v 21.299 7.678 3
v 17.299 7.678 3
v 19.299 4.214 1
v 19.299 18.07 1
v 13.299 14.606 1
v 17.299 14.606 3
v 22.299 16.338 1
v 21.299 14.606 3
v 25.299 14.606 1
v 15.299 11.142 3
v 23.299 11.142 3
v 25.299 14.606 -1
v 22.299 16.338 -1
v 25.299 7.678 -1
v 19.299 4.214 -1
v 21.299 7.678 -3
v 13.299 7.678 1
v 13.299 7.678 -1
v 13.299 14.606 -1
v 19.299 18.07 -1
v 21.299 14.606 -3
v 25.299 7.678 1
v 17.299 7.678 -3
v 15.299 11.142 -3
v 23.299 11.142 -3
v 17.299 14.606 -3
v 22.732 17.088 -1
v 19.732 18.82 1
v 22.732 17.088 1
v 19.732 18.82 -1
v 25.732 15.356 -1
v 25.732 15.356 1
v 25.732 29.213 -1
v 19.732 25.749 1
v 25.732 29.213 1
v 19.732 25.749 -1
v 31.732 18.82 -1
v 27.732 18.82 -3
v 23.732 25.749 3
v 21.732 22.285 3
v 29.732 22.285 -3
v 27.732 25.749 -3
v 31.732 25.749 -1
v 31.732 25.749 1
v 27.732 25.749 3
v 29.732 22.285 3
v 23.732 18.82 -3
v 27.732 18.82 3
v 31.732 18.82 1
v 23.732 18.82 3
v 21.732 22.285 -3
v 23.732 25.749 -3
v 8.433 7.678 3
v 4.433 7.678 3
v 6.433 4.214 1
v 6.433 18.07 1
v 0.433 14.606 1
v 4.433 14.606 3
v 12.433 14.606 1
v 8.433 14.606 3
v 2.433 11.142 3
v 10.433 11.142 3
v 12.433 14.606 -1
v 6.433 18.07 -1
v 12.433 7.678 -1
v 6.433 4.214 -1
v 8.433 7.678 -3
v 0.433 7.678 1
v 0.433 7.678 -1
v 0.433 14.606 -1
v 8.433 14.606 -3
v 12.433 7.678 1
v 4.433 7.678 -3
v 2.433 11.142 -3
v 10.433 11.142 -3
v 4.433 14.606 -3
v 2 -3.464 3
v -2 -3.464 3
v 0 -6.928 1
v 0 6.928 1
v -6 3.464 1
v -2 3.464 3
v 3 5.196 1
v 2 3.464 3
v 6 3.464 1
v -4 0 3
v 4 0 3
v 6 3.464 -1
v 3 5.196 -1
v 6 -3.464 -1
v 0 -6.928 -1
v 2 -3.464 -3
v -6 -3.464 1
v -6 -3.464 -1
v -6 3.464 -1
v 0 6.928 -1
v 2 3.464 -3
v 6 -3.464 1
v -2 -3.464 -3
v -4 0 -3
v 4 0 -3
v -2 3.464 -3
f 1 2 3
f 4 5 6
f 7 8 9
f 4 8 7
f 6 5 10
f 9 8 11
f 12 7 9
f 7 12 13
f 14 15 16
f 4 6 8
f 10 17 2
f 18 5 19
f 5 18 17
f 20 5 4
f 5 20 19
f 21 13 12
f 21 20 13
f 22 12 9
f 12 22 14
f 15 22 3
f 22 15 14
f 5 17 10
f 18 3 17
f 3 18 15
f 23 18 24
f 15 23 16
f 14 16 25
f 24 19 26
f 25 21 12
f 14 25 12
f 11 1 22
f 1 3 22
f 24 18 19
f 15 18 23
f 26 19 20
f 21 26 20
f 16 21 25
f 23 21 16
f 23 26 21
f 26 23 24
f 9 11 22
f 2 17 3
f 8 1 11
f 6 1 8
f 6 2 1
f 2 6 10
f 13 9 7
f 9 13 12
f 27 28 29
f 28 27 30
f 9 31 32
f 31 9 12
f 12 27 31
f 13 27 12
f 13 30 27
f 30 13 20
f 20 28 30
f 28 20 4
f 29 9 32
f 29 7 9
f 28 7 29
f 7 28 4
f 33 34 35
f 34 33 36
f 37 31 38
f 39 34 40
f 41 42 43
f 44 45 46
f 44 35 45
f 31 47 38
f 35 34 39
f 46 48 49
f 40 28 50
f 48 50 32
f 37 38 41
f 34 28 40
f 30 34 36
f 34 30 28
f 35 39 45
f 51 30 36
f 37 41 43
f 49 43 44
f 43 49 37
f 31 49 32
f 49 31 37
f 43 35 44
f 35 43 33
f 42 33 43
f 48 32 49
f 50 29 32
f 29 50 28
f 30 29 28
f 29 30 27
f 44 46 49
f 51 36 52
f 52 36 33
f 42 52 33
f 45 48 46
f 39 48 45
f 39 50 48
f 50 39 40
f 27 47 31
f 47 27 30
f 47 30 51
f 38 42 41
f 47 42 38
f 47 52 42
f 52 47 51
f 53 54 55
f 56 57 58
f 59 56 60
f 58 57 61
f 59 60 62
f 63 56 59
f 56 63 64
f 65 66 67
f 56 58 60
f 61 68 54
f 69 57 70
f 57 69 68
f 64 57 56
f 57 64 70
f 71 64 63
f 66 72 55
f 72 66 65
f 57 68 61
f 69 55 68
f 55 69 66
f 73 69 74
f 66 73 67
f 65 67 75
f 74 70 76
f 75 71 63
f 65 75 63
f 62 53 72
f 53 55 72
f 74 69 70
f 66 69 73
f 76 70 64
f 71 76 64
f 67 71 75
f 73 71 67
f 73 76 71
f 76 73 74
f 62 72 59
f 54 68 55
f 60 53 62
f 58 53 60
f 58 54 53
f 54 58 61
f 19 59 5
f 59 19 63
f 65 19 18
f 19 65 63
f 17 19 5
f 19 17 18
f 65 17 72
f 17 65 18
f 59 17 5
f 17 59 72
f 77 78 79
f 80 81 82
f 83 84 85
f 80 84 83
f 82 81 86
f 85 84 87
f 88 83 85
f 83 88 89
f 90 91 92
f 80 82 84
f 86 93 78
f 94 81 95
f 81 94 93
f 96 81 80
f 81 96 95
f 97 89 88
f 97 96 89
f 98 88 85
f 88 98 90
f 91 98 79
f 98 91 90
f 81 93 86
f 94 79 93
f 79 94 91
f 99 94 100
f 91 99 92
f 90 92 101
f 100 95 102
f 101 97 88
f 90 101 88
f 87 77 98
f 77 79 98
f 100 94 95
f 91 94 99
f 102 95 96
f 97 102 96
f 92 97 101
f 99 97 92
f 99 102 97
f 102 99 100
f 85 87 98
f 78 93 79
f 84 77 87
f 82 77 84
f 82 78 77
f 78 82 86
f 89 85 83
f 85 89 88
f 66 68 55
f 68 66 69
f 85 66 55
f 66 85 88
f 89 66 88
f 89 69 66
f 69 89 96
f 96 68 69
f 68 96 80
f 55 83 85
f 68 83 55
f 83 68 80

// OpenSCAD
// file: gem-common.scad
angles = [for(i = [0:5]) i * (360 / 6)];

inner_poly_radius=8 * cos(60);
outer_poly_radius=8 * cos(30);
outer_poly_z=1;
inner_poly_z=3;


gap_between_gems = cos(30);
distance_to_corner = cos(30) * outer_poly_radius * 2 + gap_between_gems;


module edge_connector(angle = 0) {
    function make_point_2d(r, angle, height) = [r * sin(angle), height];
    
    points = [
        make_point_2d(outer_poly_radius, 30, outer_poly_z),
        make_point_2d(outer_poly_radius, -30, outer_poly_z),
        make_point_2d(outer_poly_radius, -30, -outer_poly_z),
        make_point_2d(outer_poly_radius, 30, -outer_poly_z),
    ];
    
    rotate([0,0,angle]) {
        translate([(distance_to_corner - gap_between_gems) / 2,0,0]){
            rotate([90, 0, 90]) {
                linear_extrude(gap_between_gems) {
                    polygon(points);
                }
            }
        }
    }
}

module move(distance, angle) {
    translate([distance * cos(angle), distance * sin(angle), 0]) {
        children();
    }
}


module corner_connector(angle=0) {
    r = 0.5;
    rotate_angle = angle + 30;
    move(outer_poly_radius + r, rotate_angle) {
        translate([0,0, -outer_poly_z]) {
            rotate([0,0,-rotate_angle]) {
                cylinder($fn=3, r=r, h=outer_poly_z * 2);
            }
        }
    }
}

module gem() {
    function make_point(r, angle, height) = [r * cos(angle), r * sin(angle), height];
    
    top_poly = [for(th = angles) make_point(inner_poly_radius, th, inner_poly_z)];
    top_outer_poly = [for(th = angles) make_point(outer_poly_radius, th + 30, outer_poly_z)];
    bottom_outer_poly = [for(th = angles) make_point(outer_poly_radius, th + 30, -outer_poly_z)];
    bottom_poly = [for(th = angles) make_point(inner_poly_radius, th, -inner_poly_z)];
 
    function rot(n, base) = (n + 1 - base) % 6 + base;
    
    faces = [
        [5, 4, 3, 2, 1, 0],
        for(i = [0:5]) [i, (i + 1) % 6, i + 6],
        for(i = [6:11]) [i, (i - 5) % 6, rot(i, 6)],
        for(i = [6:11]) [i, rot(i, 6), rot(i, 6) + 6, i + 6],
        for(i = [12:17]) [i, rot(i, 12), rot(i, 12) + 6],
        for(i = [18:23]) [i, i-6, rot(i, 18)],
        [18, 19, 20, 21, 22, 23],
    ];
    
    polyhedron(
        concat(
            top_poly,
            top_outer_poly,
            bottom_outer_poly,
            bottom_poly
        ),
        faces
    );
}
// main file
include <./gem-common.scad>

gem();
edge_connector(60);
move(distance_to_corner, 60) {
    gem();
    edge_connector(0);
    move(distance_to_corner, 0) {
        gem();
        edge_connector(60);
        move(distance_to_corner, 60) {
            gem();
        }
    }
}
